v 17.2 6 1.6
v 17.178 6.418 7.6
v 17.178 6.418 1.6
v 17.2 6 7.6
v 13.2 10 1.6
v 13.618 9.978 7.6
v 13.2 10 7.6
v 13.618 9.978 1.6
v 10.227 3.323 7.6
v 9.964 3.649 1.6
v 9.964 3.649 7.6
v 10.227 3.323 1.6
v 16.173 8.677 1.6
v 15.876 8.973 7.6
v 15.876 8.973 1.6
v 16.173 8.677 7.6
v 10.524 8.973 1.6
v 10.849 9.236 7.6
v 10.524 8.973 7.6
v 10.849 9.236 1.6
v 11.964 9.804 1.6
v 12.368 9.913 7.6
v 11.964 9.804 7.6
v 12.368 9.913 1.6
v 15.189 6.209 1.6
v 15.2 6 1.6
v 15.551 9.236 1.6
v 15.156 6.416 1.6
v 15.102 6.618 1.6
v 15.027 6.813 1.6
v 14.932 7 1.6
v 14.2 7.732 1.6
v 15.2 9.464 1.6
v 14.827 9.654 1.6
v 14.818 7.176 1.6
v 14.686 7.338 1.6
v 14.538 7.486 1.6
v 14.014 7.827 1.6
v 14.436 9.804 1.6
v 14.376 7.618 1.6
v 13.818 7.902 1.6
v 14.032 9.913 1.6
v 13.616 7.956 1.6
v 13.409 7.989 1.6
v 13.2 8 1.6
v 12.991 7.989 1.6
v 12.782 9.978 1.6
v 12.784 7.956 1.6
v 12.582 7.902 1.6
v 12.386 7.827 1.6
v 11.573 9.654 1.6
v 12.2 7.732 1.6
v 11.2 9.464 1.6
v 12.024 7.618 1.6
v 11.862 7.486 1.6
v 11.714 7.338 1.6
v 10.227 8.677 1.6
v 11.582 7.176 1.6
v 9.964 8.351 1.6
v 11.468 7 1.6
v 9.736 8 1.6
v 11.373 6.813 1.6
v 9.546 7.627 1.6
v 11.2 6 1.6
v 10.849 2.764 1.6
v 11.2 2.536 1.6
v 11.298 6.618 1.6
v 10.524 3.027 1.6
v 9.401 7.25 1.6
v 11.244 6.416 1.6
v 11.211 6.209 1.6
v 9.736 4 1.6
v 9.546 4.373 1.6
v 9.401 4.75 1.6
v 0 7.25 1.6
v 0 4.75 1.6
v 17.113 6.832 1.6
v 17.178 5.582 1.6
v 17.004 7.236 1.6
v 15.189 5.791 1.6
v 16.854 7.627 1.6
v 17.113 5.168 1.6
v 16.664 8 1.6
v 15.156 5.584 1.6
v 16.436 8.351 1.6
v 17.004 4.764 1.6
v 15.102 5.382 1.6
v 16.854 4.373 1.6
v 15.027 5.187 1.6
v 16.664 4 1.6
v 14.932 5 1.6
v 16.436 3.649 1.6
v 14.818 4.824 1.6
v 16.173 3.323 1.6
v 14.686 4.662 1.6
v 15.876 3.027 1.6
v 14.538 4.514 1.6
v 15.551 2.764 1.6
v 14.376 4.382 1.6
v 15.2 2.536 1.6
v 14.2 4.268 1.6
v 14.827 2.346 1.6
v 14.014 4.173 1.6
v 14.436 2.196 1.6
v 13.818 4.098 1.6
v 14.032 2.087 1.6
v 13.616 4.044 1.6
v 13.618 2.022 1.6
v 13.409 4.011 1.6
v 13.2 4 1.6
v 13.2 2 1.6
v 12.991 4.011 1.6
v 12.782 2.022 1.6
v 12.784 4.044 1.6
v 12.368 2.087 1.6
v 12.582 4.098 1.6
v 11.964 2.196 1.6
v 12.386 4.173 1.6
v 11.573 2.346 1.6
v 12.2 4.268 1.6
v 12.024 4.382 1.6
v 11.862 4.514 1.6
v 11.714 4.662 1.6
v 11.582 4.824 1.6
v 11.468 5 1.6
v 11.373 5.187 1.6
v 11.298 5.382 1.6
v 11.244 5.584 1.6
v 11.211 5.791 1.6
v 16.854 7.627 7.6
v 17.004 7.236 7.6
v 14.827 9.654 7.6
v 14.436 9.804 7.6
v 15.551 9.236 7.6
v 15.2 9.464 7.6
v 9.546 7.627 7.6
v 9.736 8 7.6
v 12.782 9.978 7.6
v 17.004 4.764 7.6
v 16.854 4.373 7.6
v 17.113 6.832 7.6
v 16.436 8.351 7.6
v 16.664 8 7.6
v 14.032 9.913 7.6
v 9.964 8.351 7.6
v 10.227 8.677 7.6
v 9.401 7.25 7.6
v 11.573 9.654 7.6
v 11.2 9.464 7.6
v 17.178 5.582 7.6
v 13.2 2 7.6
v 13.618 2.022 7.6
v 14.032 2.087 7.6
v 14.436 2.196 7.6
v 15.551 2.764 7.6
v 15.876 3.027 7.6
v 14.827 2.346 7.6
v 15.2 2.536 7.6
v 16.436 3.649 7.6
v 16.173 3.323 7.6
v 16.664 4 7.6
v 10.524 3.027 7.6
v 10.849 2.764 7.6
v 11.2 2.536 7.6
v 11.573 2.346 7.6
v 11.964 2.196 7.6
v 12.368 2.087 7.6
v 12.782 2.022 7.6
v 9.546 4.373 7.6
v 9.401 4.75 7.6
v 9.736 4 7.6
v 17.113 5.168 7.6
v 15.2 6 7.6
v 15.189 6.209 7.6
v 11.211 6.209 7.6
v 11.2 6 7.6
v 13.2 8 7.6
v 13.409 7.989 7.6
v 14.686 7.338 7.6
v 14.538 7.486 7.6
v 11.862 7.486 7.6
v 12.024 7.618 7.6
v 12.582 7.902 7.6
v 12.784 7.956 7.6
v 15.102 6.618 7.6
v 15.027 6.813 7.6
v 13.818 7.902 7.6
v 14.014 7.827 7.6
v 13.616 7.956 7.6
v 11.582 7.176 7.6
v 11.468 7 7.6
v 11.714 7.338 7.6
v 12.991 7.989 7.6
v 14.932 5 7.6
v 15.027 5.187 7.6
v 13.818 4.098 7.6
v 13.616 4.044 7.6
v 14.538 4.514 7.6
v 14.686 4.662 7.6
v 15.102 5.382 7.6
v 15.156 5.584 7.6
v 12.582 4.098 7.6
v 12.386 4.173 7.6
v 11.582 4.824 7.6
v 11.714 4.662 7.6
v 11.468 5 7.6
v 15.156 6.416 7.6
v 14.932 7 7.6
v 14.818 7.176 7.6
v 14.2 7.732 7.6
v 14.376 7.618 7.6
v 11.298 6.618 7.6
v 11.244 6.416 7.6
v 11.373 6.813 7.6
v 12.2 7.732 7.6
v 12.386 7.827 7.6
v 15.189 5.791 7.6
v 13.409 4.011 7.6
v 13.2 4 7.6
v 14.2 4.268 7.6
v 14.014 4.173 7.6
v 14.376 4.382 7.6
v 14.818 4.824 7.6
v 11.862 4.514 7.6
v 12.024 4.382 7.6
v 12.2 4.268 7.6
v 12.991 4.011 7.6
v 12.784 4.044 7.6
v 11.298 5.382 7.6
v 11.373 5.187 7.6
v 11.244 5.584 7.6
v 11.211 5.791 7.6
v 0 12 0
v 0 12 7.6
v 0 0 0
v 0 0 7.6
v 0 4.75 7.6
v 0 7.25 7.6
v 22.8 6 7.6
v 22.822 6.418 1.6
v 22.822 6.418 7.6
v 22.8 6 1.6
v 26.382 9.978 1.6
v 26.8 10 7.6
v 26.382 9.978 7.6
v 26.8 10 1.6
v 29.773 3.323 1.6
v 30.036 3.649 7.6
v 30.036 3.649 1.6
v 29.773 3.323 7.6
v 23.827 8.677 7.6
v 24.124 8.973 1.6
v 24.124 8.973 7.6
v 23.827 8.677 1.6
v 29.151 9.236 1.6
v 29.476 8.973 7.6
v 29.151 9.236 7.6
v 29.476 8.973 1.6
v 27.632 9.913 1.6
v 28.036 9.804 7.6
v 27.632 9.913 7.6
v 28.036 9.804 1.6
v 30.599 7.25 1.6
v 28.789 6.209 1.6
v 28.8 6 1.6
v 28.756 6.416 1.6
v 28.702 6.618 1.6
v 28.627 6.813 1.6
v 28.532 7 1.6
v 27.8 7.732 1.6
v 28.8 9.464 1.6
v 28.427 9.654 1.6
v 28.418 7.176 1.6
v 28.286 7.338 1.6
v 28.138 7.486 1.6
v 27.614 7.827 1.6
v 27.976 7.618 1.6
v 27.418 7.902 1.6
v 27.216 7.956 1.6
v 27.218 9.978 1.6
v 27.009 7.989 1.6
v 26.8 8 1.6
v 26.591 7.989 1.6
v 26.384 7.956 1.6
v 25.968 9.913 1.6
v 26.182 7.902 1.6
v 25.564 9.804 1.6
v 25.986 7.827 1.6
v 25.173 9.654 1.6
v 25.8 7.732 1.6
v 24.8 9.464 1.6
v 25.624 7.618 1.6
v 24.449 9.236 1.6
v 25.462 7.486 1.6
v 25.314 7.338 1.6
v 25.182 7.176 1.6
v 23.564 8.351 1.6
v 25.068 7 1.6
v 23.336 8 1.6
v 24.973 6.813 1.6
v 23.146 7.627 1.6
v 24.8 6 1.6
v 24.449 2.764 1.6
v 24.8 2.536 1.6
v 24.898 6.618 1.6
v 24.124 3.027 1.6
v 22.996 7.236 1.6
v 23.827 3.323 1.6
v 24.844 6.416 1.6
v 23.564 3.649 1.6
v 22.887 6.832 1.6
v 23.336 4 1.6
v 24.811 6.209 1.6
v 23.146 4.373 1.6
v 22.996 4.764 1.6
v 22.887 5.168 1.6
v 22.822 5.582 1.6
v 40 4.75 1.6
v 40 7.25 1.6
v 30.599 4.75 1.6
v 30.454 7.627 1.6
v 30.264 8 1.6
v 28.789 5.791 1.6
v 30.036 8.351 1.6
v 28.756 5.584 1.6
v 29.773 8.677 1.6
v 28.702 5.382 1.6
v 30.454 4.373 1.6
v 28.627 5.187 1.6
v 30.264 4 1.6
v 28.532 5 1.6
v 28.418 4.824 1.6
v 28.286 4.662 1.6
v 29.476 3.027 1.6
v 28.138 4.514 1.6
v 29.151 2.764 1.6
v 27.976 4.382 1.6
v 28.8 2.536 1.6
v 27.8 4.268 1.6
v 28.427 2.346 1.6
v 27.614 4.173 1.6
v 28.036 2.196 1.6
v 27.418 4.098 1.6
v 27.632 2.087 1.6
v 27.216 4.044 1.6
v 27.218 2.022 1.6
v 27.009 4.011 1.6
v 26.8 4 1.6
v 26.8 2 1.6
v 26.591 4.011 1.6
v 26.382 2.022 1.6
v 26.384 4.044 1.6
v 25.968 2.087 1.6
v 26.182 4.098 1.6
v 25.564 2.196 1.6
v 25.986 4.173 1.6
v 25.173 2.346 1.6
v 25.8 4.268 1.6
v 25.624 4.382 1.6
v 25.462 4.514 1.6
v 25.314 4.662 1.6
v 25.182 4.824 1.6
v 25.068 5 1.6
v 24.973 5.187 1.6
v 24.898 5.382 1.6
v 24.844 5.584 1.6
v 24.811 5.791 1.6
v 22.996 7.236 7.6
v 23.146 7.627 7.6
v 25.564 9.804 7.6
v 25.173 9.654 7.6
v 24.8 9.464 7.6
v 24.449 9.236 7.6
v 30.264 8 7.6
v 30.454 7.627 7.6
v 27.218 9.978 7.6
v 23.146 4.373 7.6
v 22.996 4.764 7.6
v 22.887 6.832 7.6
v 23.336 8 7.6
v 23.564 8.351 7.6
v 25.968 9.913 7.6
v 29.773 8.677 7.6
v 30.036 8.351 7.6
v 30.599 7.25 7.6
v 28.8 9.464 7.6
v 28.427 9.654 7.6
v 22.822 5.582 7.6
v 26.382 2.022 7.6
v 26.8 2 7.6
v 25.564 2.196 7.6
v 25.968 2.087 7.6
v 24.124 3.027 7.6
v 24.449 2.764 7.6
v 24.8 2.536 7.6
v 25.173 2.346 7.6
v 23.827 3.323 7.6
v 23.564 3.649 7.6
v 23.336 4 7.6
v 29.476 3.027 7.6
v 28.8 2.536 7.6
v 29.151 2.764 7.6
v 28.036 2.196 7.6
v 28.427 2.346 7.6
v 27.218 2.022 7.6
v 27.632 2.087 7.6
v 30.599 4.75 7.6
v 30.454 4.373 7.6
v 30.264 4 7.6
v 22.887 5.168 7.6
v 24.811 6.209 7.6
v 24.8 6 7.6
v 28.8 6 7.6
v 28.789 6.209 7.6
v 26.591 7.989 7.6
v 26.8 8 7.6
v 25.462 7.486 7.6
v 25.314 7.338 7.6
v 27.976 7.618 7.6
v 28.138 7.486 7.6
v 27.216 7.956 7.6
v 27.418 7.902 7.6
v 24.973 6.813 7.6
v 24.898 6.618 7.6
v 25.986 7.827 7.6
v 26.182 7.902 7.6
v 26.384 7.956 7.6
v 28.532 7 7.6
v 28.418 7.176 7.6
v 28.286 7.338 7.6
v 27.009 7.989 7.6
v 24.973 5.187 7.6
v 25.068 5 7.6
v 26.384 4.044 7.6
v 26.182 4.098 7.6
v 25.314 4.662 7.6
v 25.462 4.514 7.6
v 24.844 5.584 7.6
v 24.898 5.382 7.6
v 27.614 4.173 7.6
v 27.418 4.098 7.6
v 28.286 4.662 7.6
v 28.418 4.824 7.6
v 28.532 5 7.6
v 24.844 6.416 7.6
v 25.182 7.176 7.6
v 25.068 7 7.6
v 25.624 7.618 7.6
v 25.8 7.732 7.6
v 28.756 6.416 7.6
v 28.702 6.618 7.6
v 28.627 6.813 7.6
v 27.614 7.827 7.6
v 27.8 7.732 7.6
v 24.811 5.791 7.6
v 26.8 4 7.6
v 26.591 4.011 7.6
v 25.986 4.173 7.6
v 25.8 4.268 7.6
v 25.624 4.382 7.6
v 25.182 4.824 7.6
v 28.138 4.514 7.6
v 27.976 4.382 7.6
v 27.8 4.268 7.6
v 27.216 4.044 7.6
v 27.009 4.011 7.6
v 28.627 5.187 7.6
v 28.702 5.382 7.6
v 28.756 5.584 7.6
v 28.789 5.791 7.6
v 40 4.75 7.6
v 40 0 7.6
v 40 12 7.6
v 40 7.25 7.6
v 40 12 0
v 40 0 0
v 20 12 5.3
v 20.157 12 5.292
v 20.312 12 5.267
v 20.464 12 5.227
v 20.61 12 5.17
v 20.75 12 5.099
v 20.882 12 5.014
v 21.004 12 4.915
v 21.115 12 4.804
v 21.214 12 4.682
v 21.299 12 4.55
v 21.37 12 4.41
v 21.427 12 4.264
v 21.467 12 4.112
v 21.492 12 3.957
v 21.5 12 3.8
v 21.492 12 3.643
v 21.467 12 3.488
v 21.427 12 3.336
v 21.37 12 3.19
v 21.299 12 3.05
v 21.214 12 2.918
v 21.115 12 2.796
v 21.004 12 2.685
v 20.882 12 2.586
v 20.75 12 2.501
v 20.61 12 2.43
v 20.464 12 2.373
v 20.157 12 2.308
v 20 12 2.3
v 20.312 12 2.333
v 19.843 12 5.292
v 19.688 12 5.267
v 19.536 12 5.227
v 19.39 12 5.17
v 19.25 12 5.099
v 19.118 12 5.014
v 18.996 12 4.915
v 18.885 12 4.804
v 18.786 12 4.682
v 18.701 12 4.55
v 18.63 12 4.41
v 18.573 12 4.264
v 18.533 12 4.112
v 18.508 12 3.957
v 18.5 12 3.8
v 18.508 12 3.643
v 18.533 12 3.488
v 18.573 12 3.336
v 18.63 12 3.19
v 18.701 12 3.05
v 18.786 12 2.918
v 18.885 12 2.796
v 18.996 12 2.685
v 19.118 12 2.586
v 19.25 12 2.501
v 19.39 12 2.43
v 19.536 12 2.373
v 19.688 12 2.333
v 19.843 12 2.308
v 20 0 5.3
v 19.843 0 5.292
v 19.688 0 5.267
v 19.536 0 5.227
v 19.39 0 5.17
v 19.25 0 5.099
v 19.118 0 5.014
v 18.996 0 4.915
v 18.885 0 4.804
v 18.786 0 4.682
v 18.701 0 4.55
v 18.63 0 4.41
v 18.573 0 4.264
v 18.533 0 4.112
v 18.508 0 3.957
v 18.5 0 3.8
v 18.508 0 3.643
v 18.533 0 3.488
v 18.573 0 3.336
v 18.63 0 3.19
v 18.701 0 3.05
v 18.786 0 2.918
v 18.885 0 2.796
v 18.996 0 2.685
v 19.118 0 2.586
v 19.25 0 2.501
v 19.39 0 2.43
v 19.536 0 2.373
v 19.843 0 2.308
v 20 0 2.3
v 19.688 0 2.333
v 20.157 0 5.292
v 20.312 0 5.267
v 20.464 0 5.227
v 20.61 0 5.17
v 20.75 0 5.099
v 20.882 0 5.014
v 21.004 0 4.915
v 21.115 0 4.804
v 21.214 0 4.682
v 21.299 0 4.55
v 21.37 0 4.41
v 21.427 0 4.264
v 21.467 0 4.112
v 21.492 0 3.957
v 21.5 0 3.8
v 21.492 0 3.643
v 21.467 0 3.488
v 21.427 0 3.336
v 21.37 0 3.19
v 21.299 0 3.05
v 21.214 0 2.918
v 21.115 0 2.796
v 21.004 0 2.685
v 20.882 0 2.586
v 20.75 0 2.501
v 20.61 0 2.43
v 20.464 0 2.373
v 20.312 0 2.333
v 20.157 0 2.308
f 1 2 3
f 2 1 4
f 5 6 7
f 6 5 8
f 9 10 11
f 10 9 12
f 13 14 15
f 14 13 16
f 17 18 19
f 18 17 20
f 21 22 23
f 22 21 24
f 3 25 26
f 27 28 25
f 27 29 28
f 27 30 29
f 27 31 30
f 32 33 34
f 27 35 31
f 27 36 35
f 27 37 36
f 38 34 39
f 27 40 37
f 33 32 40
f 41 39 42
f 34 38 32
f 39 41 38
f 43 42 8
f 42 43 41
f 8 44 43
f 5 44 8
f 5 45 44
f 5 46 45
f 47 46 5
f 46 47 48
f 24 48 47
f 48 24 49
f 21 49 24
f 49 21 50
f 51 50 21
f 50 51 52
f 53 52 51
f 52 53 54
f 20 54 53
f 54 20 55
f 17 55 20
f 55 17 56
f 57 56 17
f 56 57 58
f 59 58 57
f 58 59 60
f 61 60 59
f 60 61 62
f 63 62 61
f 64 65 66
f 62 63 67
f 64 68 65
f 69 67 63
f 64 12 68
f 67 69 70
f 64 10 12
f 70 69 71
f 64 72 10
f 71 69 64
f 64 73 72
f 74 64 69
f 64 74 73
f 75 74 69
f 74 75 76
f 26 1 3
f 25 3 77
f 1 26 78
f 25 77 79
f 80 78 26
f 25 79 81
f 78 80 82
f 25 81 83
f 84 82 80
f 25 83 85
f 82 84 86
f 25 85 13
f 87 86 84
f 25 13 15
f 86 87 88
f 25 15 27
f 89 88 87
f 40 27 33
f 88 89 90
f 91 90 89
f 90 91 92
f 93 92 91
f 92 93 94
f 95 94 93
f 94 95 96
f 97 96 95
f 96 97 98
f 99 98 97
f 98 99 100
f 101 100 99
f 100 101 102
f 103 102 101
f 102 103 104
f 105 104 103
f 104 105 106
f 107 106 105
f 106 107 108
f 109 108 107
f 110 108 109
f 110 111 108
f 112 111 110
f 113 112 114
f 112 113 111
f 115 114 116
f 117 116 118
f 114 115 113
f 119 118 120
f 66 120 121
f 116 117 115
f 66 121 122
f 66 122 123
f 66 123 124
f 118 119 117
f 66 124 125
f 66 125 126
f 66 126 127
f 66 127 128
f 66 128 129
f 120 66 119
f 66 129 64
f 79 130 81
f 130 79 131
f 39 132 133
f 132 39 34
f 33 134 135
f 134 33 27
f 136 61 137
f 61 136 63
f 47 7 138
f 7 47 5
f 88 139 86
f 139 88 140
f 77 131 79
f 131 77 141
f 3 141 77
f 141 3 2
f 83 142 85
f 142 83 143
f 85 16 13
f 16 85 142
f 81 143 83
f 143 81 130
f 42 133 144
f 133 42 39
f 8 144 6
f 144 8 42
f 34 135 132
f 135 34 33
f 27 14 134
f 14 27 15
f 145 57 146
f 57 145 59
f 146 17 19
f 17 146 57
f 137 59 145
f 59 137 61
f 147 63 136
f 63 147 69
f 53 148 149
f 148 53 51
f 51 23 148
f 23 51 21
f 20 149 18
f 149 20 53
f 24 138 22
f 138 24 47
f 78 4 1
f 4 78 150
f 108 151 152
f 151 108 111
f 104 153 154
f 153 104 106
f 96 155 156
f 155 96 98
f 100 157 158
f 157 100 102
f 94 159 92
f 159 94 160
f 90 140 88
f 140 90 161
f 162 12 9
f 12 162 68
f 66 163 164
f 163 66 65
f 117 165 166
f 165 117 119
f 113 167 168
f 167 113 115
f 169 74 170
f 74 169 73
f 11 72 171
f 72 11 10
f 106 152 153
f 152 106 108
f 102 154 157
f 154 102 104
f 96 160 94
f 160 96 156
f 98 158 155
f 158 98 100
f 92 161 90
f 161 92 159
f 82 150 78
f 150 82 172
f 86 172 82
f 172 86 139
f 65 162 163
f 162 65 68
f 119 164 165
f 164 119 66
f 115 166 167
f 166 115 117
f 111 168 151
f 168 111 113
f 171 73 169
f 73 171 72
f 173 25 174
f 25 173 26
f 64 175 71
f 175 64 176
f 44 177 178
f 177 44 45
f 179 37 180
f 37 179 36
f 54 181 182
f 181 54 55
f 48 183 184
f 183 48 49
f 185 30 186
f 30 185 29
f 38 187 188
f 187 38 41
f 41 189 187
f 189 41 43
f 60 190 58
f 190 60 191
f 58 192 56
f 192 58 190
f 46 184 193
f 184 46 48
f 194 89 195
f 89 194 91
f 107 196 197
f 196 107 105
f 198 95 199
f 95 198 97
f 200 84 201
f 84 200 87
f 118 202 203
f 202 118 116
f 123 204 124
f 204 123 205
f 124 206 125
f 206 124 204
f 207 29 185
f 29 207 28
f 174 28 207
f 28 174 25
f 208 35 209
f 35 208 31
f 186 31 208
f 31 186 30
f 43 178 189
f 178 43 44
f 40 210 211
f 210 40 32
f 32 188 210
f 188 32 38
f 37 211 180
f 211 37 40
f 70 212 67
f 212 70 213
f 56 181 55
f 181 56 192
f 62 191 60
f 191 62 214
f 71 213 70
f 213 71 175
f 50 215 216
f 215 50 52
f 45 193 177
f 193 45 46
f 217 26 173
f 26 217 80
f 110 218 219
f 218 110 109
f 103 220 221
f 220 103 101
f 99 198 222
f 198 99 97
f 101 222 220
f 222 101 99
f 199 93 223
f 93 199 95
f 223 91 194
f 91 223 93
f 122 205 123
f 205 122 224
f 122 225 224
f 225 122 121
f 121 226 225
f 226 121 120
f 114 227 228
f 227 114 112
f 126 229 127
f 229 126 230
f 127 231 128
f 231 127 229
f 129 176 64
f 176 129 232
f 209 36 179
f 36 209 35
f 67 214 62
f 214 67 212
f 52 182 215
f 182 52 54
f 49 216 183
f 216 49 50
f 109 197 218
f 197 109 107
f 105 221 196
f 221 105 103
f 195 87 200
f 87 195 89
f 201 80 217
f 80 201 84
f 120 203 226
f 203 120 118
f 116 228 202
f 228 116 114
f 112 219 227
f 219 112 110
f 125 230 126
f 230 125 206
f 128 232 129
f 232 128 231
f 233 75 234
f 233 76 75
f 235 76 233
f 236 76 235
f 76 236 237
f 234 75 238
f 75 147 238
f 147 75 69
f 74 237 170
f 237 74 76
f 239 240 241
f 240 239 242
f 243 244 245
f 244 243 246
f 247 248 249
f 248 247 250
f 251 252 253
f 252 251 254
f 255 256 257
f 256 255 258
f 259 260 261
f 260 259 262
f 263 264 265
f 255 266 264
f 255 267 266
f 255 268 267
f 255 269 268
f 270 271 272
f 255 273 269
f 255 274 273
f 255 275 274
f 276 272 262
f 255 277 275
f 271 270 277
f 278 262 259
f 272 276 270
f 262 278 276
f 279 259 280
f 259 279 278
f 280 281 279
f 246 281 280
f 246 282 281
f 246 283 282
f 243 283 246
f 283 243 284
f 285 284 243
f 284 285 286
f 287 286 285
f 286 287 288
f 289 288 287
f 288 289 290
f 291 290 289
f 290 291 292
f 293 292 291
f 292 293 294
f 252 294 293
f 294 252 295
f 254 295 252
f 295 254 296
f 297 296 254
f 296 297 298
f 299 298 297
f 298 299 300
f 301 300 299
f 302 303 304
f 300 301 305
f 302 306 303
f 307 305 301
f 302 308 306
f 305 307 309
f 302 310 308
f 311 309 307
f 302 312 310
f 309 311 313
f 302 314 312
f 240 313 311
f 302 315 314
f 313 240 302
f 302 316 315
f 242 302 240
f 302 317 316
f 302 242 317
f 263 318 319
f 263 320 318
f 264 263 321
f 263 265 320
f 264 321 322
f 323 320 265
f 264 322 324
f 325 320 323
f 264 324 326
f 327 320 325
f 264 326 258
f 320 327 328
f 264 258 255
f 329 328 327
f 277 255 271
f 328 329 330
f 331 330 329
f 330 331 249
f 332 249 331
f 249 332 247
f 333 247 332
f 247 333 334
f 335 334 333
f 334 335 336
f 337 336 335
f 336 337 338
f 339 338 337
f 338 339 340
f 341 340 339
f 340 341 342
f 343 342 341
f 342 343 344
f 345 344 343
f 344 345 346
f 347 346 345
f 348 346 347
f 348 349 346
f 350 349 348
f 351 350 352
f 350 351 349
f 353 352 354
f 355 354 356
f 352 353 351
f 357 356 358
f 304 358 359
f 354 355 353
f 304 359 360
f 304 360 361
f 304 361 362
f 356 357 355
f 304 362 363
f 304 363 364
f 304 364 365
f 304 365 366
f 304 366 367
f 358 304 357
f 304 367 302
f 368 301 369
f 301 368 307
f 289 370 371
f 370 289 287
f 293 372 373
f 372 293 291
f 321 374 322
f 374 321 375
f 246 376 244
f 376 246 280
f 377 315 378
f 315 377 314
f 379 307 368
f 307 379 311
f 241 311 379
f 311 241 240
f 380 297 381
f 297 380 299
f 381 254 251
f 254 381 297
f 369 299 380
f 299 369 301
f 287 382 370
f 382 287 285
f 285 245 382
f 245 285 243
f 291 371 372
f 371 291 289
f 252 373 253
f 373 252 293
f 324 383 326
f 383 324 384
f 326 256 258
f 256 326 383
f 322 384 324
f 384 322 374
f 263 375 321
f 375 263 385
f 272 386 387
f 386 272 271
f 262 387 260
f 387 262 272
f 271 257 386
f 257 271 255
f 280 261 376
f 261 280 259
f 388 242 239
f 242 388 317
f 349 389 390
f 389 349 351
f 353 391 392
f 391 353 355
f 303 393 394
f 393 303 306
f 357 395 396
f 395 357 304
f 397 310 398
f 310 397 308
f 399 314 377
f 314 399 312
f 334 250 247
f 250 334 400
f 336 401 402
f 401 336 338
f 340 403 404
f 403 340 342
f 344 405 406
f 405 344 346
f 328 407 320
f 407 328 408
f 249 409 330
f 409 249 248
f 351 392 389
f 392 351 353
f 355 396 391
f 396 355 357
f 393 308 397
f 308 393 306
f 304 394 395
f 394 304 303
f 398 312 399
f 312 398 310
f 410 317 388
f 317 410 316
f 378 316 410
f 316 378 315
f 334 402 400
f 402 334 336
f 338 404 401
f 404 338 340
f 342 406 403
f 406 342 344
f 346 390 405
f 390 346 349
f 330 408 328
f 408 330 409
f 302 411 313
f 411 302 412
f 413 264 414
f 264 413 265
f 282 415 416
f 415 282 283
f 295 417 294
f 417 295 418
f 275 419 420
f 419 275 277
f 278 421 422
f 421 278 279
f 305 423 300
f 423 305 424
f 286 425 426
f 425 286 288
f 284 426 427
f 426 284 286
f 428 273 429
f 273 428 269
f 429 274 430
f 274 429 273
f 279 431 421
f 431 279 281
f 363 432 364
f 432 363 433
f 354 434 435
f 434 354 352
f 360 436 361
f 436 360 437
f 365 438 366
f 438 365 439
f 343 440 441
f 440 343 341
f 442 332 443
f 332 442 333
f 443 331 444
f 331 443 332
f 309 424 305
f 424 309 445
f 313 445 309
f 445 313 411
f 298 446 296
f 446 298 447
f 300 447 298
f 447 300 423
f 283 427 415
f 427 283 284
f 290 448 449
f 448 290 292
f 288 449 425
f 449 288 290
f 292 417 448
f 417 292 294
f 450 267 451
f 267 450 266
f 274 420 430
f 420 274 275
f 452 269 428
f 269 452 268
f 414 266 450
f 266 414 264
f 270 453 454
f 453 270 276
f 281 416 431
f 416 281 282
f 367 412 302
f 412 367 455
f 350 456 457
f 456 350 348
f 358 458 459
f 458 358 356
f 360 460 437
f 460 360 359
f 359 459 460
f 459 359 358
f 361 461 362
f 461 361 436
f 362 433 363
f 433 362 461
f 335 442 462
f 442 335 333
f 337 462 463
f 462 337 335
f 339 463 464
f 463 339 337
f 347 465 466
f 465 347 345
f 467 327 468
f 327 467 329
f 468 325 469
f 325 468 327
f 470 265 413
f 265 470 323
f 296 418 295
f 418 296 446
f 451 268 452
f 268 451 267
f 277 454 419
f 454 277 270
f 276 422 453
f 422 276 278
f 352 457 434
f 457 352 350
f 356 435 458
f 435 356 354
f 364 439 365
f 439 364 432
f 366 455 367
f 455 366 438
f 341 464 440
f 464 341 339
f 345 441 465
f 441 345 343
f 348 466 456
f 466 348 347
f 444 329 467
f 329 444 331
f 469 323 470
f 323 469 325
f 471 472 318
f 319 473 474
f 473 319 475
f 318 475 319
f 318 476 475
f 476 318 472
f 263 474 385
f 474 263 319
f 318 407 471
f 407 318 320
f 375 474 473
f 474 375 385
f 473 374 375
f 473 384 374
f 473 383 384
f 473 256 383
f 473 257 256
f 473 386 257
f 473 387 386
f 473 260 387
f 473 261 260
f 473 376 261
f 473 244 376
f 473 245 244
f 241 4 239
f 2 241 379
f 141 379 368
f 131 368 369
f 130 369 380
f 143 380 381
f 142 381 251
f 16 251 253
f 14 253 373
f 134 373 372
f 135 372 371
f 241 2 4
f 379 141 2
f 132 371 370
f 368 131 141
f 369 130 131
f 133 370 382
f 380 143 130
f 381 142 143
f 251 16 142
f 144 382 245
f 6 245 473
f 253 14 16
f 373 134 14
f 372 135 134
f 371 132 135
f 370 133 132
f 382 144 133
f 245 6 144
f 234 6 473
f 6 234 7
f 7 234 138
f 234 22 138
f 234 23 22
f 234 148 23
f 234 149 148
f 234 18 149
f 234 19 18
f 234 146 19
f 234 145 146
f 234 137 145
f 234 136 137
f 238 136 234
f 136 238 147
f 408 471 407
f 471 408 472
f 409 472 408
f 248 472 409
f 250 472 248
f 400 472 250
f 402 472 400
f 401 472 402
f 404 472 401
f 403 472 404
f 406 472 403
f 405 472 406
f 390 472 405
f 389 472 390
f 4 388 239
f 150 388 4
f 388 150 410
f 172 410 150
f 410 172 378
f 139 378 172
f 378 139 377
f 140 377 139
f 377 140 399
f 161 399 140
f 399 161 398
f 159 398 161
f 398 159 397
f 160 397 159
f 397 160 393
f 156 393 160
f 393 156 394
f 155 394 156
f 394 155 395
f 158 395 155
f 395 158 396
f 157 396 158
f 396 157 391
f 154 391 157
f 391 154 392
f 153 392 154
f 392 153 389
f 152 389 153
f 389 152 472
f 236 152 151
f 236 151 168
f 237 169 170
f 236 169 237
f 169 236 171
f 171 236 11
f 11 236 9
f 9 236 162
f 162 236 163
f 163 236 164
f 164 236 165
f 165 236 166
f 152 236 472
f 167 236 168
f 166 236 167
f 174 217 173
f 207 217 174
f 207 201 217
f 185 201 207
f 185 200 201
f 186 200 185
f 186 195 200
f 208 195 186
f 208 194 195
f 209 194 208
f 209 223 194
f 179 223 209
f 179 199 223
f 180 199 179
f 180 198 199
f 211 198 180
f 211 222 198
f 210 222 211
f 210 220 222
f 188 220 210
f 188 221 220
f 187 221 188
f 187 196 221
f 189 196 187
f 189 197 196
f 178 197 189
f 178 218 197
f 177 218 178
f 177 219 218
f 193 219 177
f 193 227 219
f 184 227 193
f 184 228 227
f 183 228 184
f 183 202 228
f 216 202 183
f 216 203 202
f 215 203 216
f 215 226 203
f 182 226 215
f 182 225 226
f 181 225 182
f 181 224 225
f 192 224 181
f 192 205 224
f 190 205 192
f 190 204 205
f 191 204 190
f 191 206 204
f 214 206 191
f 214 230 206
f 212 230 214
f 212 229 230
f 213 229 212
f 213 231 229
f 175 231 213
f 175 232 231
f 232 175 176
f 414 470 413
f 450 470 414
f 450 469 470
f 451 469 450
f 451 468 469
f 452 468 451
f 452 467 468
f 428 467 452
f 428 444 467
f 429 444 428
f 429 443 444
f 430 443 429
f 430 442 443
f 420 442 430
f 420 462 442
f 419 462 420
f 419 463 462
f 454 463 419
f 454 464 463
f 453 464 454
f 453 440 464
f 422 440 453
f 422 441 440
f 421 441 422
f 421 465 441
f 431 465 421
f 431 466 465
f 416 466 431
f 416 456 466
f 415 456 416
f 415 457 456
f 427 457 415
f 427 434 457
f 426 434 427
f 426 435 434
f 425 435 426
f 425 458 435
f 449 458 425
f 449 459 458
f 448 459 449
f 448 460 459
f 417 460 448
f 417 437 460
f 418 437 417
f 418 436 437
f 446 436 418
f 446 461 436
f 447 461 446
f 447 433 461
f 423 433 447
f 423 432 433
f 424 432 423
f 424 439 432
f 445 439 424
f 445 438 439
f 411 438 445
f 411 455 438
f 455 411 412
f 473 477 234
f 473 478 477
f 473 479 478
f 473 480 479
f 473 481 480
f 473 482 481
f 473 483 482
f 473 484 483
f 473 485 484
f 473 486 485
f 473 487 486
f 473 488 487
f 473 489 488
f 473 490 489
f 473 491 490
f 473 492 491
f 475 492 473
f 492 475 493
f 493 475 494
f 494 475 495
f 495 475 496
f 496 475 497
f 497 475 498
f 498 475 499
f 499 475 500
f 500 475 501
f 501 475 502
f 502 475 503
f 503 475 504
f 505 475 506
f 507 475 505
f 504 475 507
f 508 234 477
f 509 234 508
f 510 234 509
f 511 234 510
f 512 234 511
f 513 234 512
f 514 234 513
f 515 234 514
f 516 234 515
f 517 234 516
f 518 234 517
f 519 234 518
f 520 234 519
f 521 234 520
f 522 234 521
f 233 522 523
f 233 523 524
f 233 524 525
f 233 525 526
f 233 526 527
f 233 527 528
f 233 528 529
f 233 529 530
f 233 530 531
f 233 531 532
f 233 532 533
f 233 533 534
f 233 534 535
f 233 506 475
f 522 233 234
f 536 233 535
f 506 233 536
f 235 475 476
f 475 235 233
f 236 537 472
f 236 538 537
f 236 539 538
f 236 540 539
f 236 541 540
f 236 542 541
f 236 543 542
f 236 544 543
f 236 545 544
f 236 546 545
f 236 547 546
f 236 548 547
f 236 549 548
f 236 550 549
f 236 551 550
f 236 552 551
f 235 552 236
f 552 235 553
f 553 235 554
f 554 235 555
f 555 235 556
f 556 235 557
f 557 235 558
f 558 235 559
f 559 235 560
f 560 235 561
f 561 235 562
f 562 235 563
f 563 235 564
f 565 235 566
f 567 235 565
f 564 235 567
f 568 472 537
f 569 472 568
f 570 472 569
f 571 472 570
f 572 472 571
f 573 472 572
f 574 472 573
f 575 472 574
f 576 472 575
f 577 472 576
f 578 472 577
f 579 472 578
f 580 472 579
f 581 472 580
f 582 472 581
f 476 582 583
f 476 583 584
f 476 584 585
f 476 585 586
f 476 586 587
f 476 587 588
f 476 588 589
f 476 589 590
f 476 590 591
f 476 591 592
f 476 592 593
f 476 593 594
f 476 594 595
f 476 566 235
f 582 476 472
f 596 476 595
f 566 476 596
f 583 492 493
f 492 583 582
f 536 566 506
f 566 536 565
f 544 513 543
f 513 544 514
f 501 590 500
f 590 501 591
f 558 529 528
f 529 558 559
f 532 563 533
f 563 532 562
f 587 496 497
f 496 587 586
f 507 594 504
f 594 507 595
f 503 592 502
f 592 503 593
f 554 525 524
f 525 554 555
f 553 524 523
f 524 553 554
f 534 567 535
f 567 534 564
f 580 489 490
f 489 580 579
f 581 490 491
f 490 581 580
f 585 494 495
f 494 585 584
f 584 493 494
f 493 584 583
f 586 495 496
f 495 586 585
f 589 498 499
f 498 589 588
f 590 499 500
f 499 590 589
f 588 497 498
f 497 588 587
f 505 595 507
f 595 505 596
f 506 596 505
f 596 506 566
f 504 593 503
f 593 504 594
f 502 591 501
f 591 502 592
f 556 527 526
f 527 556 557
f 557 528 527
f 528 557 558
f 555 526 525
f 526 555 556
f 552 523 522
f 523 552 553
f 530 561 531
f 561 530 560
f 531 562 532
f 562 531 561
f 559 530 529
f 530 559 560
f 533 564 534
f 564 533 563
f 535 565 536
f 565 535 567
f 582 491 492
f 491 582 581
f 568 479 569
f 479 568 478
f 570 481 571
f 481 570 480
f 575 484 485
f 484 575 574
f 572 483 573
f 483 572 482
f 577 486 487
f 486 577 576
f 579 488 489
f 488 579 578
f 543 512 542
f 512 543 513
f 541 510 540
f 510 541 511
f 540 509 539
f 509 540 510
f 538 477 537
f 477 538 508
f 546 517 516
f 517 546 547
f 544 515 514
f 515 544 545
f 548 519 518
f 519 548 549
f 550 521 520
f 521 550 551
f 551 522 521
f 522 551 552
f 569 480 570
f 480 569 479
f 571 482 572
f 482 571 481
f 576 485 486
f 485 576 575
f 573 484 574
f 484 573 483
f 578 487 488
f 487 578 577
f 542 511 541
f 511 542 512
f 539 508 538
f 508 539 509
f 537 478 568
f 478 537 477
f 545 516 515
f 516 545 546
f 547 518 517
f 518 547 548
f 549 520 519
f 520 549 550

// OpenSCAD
$fn = 60;
height = 7.6;
width = 12;
length = 40;
screw_hole_diameter = 3;
belt_hole_outer = 8;
belt_hole_inner = 4;
belt_width = 6;
belt_cutout_thickness = 2.5;
belt_holes_separation = 5.6;

module belt(){
    translate([0, -belt_cutout_thickness/2, 0])
    cube([(length-belt_holes_separation)/2 - (belt_hole_outer + belt_hole_inner)/2, belt_cutout_thickness, belt_width]); 
    translate([(length-belt_holes_separation)/2 - belt_hole_outer/2, 0, 0])
    difference(){
        cylinder(d=belt_hole_outer, h=belt_width);
        cylinder(d=belt_hole_inner, h=belt_width);
    }
}

difference(){
    cube([length, width, height]);
    translate([length/2, 0, height/2])
    rotate([-90, 0, 0])
    cylinder(d=screw_hole_diameter, h=width);
    translate([0, width/2, height-belt_width])
    belt();
    translate([length, width/2, height-belt_width])
    mirror([1, 0, 0])
    belt();
}
